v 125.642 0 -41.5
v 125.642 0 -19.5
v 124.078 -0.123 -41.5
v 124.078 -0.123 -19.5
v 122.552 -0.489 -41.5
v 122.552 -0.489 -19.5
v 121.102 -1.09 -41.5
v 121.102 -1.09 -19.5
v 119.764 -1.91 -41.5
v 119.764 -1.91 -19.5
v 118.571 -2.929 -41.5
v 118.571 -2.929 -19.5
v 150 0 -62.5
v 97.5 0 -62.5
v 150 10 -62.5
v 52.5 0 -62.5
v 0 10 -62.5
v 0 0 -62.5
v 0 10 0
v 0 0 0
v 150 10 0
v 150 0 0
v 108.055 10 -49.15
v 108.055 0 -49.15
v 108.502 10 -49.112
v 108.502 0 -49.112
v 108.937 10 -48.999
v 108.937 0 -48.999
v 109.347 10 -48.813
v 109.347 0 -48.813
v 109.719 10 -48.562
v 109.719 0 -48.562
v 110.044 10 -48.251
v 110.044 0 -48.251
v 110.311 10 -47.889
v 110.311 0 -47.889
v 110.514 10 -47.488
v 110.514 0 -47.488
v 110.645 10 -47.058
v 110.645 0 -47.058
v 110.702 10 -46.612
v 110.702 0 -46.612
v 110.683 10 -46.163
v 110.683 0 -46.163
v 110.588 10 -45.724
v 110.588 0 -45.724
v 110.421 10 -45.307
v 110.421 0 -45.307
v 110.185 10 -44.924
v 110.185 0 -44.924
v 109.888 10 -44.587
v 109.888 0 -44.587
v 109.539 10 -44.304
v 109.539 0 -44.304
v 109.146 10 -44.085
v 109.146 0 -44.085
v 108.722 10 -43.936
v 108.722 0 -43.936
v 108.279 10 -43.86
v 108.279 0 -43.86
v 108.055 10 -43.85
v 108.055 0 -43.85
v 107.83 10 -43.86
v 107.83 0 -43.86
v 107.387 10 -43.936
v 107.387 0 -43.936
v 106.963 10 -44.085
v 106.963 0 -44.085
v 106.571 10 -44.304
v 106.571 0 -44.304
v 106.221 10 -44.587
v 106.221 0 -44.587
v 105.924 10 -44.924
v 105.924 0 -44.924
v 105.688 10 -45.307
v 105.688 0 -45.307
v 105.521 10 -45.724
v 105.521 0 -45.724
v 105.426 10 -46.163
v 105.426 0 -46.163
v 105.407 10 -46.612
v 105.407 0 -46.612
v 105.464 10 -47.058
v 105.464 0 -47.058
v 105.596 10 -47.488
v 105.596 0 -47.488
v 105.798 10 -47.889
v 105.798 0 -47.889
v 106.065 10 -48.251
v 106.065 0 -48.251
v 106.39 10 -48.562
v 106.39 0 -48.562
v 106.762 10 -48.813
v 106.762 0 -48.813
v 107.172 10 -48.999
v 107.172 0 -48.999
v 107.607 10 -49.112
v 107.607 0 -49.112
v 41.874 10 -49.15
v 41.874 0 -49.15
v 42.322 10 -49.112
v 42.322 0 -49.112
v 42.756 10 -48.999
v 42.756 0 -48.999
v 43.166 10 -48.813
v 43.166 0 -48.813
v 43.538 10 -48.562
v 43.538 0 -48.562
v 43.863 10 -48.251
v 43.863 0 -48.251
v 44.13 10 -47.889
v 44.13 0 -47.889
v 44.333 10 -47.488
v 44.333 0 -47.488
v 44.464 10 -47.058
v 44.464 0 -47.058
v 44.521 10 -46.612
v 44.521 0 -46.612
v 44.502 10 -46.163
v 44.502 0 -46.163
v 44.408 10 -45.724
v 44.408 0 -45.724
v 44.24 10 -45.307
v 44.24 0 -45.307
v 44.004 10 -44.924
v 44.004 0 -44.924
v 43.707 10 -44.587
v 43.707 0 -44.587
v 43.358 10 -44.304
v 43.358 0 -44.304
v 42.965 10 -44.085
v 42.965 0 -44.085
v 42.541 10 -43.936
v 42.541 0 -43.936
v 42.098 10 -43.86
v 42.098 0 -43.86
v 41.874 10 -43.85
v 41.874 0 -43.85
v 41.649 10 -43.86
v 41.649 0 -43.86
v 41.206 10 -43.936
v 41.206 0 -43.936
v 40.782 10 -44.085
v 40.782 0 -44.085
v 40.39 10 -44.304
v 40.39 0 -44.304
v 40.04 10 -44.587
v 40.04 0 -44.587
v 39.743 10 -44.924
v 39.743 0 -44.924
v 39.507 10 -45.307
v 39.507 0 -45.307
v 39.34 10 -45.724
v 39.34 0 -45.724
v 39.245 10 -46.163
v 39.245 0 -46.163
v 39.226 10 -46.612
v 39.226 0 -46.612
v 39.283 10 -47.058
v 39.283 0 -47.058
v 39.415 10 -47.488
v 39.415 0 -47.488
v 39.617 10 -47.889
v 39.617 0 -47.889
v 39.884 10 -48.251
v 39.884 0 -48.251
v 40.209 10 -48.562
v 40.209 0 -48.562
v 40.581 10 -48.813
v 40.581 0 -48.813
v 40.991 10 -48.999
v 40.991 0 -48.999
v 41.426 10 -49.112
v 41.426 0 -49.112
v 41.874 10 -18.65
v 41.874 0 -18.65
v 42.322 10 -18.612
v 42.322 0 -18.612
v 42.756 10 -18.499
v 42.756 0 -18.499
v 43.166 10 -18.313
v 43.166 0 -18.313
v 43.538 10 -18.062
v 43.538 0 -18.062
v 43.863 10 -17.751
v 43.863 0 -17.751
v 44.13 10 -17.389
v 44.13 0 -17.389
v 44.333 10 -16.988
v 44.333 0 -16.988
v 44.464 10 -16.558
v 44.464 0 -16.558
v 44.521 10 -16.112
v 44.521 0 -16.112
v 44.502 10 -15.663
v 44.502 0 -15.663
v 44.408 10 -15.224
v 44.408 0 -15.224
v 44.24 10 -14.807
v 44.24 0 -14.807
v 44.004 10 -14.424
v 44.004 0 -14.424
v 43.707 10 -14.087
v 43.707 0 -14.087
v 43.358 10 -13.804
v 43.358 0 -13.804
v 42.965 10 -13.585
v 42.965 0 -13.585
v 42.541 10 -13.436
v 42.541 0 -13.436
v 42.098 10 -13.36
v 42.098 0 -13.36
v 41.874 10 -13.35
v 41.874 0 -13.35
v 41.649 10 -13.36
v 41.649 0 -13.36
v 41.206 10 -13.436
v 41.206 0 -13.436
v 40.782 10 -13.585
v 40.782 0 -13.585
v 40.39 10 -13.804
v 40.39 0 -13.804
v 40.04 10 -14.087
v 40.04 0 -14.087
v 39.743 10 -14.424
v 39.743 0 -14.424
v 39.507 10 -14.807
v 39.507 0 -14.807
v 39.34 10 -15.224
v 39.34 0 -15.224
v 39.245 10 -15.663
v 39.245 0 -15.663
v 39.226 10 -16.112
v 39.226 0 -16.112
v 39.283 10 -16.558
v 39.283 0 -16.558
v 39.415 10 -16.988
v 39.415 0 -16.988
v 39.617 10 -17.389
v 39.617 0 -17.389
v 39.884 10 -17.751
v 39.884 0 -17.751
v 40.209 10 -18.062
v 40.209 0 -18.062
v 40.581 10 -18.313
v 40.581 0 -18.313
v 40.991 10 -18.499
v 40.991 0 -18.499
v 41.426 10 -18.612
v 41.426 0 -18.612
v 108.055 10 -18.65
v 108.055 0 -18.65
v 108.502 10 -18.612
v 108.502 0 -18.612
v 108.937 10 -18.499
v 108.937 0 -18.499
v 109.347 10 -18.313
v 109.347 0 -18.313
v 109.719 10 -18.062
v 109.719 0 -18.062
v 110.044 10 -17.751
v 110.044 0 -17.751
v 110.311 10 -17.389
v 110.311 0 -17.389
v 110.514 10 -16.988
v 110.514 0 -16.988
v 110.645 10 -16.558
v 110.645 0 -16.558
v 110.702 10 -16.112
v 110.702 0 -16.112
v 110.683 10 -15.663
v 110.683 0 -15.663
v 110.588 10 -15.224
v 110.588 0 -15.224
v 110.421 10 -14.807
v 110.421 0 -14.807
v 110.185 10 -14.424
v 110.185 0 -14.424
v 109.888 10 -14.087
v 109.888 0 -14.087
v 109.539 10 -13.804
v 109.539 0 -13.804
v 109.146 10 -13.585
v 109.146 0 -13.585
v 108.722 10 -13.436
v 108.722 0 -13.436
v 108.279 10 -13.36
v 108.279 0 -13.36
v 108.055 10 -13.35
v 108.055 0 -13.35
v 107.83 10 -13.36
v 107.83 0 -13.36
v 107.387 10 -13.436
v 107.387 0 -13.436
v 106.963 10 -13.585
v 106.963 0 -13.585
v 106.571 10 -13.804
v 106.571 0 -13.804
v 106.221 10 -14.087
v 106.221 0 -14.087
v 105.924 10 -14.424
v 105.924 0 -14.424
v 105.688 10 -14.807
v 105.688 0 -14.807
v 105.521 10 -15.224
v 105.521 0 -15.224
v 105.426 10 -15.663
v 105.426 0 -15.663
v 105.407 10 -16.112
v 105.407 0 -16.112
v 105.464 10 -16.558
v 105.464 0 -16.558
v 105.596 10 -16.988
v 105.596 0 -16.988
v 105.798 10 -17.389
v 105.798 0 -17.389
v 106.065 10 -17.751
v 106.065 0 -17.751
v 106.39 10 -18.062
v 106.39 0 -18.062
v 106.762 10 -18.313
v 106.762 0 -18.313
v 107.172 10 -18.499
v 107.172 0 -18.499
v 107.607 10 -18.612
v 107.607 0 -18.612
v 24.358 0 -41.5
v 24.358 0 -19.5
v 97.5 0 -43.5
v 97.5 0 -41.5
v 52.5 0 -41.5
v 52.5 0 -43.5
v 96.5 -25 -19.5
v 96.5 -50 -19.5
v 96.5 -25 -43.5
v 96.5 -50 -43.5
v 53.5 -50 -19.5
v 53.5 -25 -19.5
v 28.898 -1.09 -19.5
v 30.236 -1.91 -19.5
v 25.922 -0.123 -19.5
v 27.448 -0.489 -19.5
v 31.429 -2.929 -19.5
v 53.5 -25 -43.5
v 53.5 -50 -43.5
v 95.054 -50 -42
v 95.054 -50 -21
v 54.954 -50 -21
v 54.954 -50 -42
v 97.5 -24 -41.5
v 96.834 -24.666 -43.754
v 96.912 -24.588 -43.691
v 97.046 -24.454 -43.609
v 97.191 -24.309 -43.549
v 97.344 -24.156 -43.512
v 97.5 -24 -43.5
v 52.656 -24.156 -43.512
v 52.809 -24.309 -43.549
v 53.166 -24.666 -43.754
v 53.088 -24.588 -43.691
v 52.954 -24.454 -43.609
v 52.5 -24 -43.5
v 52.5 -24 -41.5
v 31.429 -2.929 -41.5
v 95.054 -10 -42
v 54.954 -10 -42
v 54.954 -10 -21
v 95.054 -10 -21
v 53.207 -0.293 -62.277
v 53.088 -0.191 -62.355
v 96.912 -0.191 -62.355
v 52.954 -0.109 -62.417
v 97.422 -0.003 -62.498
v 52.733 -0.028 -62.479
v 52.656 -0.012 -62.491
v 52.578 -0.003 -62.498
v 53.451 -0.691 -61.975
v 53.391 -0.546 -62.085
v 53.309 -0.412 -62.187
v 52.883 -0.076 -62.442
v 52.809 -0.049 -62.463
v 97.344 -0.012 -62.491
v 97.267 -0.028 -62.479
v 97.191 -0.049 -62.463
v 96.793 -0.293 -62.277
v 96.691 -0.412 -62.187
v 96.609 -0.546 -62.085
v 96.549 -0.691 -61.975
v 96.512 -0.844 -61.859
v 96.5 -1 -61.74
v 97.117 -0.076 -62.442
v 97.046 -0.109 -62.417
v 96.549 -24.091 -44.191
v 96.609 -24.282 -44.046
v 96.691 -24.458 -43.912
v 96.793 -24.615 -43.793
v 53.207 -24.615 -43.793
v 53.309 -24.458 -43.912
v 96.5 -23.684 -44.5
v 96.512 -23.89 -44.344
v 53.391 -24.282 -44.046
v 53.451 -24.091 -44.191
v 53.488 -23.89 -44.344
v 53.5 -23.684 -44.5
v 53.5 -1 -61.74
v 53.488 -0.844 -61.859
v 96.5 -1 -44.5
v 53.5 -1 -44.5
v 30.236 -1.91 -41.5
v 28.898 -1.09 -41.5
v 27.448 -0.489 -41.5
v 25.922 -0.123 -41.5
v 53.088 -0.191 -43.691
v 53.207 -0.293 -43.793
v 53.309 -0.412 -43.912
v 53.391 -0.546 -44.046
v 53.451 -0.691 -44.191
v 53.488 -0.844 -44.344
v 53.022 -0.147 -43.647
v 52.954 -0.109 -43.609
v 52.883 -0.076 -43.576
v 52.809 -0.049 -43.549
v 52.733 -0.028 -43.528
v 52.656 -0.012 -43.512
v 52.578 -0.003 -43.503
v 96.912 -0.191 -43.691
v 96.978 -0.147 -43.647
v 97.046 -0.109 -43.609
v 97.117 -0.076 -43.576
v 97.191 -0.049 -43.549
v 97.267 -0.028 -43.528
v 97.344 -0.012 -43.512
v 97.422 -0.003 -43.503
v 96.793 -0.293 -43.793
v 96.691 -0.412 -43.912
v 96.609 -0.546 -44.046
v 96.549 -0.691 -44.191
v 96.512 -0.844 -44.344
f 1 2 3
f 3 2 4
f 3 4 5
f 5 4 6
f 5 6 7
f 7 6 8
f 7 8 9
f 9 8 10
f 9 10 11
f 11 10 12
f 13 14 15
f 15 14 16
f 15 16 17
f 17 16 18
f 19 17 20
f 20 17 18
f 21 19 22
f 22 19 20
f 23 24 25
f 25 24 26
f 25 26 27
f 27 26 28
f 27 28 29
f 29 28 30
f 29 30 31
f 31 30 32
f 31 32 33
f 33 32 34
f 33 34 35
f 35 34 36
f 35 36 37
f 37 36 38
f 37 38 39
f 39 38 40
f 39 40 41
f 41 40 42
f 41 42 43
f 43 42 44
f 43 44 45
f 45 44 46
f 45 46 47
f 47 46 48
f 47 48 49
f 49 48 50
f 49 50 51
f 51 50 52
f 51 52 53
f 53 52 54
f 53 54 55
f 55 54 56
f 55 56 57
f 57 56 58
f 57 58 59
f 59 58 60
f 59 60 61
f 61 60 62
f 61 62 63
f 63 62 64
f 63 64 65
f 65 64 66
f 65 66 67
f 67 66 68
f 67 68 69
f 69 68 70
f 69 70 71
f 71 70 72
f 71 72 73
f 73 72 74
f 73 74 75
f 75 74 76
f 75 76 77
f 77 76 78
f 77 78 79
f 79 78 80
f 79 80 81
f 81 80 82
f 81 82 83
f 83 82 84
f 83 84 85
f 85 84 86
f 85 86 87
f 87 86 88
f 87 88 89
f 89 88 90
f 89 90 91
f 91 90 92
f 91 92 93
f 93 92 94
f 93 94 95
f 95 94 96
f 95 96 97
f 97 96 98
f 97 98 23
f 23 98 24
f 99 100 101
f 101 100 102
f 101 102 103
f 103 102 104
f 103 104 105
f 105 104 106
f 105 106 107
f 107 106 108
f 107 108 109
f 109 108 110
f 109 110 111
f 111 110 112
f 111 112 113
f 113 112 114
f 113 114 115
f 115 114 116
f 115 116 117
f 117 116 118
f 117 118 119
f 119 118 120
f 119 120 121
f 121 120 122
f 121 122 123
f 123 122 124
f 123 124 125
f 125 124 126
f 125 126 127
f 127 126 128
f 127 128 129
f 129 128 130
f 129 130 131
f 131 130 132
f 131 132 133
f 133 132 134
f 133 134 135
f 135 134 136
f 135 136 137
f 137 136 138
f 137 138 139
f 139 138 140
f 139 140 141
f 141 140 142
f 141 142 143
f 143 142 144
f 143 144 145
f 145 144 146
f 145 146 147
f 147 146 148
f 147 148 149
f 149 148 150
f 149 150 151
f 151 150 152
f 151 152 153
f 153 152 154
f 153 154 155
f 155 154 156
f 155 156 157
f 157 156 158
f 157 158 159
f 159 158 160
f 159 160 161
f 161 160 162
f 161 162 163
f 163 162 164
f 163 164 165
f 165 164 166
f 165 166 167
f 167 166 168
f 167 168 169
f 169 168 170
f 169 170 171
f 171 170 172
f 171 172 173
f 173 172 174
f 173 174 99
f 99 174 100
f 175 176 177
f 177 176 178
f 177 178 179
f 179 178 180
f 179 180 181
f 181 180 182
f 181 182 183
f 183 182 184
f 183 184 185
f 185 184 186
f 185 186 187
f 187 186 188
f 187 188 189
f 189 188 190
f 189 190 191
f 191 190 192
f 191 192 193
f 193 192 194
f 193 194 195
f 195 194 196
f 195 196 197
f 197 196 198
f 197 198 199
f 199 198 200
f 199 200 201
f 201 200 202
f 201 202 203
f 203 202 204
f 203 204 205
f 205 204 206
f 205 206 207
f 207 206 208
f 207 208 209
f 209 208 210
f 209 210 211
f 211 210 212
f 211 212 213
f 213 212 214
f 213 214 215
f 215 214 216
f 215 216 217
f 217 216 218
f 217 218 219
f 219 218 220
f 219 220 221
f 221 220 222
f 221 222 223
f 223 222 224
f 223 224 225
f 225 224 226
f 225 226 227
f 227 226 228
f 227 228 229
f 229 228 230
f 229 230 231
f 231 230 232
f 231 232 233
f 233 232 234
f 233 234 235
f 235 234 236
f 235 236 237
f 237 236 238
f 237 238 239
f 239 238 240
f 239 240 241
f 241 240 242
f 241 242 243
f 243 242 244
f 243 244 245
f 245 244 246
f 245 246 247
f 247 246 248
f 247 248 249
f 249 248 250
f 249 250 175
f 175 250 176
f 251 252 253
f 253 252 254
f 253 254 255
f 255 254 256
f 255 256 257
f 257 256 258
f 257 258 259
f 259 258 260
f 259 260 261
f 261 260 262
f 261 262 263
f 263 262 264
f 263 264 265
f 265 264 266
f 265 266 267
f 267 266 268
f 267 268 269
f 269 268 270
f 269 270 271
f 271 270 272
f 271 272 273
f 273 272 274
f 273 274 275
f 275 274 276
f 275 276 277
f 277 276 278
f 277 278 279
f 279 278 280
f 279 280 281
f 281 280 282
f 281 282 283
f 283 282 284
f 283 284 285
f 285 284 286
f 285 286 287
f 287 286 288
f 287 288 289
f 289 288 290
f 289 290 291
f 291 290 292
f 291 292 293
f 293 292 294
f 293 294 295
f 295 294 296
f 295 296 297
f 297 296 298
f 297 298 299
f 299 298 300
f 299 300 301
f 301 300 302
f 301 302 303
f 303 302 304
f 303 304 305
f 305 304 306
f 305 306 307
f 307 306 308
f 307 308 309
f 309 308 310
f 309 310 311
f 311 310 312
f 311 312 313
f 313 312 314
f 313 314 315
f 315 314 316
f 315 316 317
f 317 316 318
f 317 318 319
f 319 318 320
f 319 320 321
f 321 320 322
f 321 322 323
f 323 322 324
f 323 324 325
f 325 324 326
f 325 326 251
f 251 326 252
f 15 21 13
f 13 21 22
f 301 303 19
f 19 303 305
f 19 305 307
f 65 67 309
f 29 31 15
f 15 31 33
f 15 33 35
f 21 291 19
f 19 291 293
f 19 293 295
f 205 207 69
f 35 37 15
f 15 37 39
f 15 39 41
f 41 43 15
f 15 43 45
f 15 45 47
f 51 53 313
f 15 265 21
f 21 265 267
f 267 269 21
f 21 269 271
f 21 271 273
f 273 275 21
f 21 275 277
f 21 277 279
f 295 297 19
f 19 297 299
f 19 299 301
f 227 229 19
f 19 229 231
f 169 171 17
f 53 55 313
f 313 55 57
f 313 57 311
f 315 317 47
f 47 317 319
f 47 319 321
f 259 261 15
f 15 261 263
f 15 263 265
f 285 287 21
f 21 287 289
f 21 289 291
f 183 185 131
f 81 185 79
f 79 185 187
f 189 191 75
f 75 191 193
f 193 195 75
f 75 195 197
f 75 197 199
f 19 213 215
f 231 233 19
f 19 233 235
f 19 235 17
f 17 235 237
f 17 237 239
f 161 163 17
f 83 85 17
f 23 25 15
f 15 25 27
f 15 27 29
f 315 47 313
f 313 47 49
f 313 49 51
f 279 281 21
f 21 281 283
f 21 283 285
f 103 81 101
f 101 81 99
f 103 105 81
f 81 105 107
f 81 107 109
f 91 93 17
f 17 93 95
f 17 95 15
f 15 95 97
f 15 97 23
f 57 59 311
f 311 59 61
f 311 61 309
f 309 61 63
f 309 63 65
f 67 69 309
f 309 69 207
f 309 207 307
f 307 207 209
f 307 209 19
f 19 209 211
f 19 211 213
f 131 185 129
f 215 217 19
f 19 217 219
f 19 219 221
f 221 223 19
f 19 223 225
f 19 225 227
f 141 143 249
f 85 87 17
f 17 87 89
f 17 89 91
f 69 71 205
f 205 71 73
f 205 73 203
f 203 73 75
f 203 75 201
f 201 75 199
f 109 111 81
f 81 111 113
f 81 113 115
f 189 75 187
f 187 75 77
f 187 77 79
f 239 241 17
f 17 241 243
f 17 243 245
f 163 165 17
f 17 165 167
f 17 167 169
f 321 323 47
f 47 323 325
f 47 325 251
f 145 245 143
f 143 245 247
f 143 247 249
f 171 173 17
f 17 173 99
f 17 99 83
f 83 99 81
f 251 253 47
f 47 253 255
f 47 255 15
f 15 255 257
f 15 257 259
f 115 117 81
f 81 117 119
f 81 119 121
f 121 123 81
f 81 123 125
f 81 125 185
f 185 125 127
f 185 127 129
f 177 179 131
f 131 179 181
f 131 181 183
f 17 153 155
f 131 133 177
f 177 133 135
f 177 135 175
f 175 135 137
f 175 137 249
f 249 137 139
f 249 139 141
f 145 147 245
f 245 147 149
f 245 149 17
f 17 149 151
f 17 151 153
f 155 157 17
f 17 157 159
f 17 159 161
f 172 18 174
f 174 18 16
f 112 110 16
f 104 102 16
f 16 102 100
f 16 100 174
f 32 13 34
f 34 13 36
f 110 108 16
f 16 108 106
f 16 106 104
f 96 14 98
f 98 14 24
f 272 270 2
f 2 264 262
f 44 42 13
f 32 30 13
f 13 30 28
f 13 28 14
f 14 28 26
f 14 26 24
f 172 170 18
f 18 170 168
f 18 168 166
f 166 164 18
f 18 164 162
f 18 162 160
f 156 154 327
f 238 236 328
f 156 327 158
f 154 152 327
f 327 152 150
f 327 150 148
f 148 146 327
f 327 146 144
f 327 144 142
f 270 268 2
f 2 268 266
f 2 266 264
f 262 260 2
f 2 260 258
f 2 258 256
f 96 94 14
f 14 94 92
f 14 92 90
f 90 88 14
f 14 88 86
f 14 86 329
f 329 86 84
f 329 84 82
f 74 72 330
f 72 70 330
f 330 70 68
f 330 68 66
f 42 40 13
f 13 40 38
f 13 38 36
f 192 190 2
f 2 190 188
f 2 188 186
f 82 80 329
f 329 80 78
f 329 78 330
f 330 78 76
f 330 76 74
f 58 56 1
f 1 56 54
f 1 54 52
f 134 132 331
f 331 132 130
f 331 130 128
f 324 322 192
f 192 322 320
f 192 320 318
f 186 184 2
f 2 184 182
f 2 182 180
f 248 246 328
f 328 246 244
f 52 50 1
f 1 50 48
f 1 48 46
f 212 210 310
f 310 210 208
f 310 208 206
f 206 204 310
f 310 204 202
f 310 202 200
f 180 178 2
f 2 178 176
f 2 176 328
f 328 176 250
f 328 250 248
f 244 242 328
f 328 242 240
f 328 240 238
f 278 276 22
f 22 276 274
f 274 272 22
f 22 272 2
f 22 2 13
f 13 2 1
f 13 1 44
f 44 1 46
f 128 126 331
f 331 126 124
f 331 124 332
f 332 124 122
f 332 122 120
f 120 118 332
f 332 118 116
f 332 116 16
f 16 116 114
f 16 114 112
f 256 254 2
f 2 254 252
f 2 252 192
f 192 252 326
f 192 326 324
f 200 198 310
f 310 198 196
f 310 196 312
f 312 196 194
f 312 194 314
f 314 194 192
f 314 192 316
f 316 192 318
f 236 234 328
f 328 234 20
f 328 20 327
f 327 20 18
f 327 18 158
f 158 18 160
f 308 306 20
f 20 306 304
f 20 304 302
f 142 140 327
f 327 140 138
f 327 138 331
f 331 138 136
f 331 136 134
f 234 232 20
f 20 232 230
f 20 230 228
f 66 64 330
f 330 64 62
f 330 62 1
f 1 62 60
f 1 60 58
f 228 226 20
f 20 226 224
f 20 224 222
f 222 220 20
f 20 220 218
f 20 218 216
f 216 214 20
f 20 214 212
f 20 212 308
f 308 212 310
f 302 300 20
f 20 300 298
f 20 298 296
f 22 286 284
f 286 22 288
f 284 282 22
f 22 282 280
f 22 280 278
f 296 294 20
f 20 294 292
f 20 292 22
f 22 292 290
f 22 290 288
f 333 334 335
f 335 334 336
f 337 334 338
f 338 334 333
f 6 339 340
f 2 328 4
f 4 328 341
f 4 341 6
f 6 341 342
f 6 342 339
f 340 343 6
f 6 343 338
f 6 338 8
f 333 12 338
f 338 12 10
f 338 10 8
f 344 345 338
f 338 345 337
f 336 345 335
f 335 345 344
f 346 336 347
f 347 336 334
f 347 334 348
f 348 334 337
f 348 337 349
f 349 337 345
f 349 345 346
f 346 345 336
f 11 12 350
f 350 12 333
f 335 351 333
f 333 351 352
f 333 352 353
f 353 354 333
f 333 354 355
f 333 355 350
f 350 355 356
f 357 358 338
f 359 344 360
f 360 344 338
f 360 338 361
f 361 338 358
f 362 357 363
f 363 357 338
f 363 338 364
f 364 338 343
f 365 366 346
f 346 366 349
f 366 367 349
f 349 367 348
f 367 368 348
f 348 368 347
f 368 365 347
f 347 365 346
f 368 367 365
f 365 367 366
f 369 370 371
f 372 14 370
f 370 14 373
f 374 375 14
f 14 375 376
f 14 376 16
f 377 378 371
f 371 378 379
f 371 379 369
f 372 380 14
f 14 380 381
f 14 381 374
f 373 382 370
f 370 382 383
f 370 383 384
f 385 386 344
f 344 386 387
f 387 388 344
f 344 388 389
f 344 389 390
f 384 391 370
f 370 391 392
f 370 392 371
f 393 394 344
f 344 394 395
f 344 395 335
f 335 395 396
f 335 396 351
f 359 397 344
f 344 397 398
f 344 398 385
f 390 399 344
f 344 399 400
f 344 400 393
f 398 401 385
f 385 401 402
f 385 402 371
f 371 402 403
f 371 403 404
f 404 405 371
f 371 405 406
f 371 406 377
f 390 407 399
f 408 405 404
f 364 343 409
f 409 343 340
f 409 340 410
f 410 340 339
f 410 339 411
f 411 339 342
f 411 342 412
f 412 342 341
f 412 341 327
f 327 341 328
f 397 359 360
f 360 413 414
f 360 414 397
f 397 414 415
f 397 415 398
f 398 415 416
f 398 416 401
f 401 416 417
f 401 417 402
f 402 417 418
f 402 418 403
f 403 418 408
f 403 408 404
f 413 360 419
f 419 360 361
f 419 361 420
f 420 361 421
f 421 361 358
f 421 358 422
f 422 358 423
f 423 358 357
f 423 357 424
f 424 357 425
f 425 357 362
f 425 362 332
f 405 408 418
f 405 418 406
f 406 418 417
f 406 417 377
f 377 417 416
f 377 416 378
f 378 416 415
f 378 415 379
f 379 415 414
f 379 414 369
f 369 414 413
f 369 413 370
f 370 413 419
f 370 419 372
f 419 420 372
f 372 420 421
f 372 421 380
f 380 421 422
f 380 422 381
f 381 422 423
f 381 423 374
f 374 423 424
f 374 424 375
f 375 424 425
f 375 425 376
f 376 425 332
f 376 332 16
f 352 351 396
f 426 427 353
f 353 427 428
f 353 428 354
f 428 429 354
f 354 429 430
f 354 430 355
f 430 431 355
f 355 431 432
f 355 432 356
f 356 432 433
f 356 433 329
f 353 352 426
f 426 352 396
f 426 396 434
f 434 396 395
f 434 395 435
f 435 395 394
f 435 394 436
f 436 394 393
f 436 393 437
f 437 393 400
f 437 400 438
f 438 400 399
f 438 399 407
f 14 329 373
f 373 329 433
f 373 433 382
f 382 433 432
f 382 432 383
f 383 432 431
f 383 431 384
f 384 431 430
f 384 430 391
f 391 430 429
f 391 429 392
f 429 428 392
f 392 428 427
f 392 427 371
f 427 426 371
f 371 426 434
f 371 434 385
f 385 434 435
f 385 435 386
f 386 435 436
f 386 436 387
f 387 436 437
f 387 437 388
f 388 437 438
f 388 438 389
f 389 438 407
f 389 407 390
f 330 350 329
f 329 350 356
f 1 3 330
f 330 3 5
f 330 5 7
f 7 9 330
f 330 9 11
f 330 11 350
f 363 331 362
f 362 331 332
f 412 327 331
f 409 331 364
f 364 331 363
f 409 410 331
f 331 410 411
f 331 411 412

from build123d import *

# Parameters (mm, degrees)
SKETCH1_R           = 2.65
BOSS_EXTRUDE1_DEPTH = 10
SKETCH2_W           = 43
SKETCH2_H           = 24
BOSS_EXTRUDE2_DEPTH = 50
CHAMFER12_SIZE      = 25
SKETCH11_W          = 40.1
SKETCH11_H          = 21
CUT_EXTRUDE3_DEPTH  = 40
BOSS_EXTRUDE3_DEPTH = 43
FILLET1_R           = 10
FILLET5_R           = 1
CUT_EXTRUDE4_DEPTH  = 2


with BuildPart() as part:
    # Sketch1 → Boss-Extrude1 (new body)
    with BuildSketch(Plane(origin=(0, 0, 0), x_dir=(1, 0, 0), z_dir=(0, 1, 0))):
        Polygon((0, 0), (150, 0), (150, 62.5), (99, 62.5), (51, 62.5), (0, 62.5), align=None)
        with Locations(Location((108.05464, 46.5, 0), (0, 0, 270))):
            Circle(SKETCH1_R, mode=Mode.SUBTRACT)
        with Locations(Location((41.87366, 46.5, 0), (0, 0, 270))):
            Circle(SKETCH1_R, mode=Mode.SUBTRACT)
        with Locations(Location((41.87366, 16, 0), (0, 0, 270))):
            Circle(SKETCH1_R, mode=Mode.SUBTRACT)
        with Locations(Location((108.05464, 16, 0), (0, 0, 270))):
            Circle(SKETCH1_R, mode=Mode.SUBTRACT)
    extrude(amount=BOSS_EXTRUDE1_DEPTH)

    # Sketch2 → Boss-Extrude2 (add)
    with BuildSketch(Plane.XZ):
        with Locations((75, -31.5)):
            Rectangle(SKETCH2_W, SKETCH2_H)
    extrude(amount=BOSS_EXTRUDE2_DEPTH)

    # Chamfer12
    chamfer12_edges = [part.edges().sort_by_distance(p)[0] for p in [
        (53.5, 0, -31.5),
        (96.5, 0, -31.5),
    ]]
    chamfer(chamfer12_edges, length=CHAMFER12_SIZE)

    # Sketch11 → Cut-Extrude3 (cut)
    with BuildSketch(Plane.XZ.offset(50)):
        with Locations((75.00366, -31.5)):
            Rectangle(SKETCH11_W, SKETCH11_H)
    extrude(amount=-CUT_EXTRUDE3_DEPTH, mode=Mode.SUBTRACT)

    # Sketch12 → Boss-Extrude3 (add)
    with BuildSketch(Plane.ZY.offset(-53.5)):
        Polygon((-43.5, -25), (-43.5, 0), (-62.5, 0), align=None)
    extrude(amount=-BOSS_EXTRUDE3_DEPTH)

    # Fillet1
    fillet1_edges = [part.edges().sort_by_distance(p)[0] for p in [
        (28.5, 0, -31.5),
        (121.5, 0, -31.5),
    ]]
    fillet(fillet1_edges, radius=FILLET1_R)

    # Fillet5
    # the kernel refuses this fillet: 1 mm, written as the material it adds along each edge
    with BuildSketch(Plane(origin=(96.5, 0, -41), x_dir=(1, 0, 0), z_dir=(0, 0, -1))) as fillet5_piece_1_section:
        with BuildLine():
            CenterArc((FILLET5_R, FILLET5_R), FILLET5_R, 180, 90)
            Line((0, FILLET5_R), (0, 0))
            Line((0, 0), (FILLET5_R, 0))
        make_face()
    fillet5_piece_1 = extrude(amount=21.5, mode=Mode.PRIVATE)
    fillet5_piece_1 = split(fillet5_piece_1, bisect_by=Plane(origin=(96.726395114, -9.898830574, -54.976888763), z_dir=(0, 0.6050832675335575, 0.7961621941231029)), keep=Keep.TOP, mode=Mode.PRIVATE)
    add(fillet5_piece_1)
    with BuildSketch(Plane(origin=(96.5, -27.5, -43.5), x_dir=(1, 0, 0), z_dir=(0, 1, 0))) as fillet5_piece_2_section:
        with BuildLine():
            CenterArc((FILLET5_R, FILLET5_R), FILLET5_R, 180, 90)
            Line((0, FILLET5_R), (0, 0))
            Line((0, 0), (FILLET5_R, 0))
        make_face()
    fillet5_piece_2 = extrude(amount=30, mode=Mode.PRIVATE)
    fillet5_piece_2 = split(fillet5_piece_2, bisect_by=Plane(origin=(102.972342409, -18.527657591, -43.72500317), z_dir=(-0.7071067811865476, 0.7071067811865476, 0)), keep=Keep.TOP, mode=Mode.PRIVATE)
    fillet5_piece_2 = split(fillet5_piece_2, bisect_by=Plane(origin=(96.726036712, -16.829582585, -49.709517236), z_dir=(0, 0.6050832675335575, 0.7961621941231029)), keep=Keep.TOP, mode=Mode.PRIVATE)
    add(fillet5_piece_2)
    with BuildSketch(Plane(origin=(53.5, 0, -41), x_dir=(-1, 0, 0), z_dir=(0, 0, -1))) as fillet5_piece_3_section:
        with BuildLine():
            CenterArc((FILLET5_R, -FILLET5_R), FILLET5_R, 90, 90)
            Line((0, -FILLET5_R), (0, 0))
            Line((0, 0), (FILLET5_R, 0))
        make_face()
    fillet5_piece_3 = extrude(amount=21.5, mode=Mode.PRIVATE)
    fillet5_piece_3 = split(fillet5_piece_3, bisect_by=Plane(origin=(53.273604886, -9.898830574, -54.976888763), z_dir=(0, 0.6050832675335575, 0.7961621941231029)), keep=Keep.TOP, mode=Mode.PRIVATE)
    add(fillet5_piece_3)
    with BuildSketch(Plane(origin=(53.5, -27.5, -43.5), x_dir=(0, 0, -1), z_dir=(0, 1, 0))) as fillet5_piece_4_section:
        with BuildLine():
            CenterArc((FILLET5_R, FILLET5_R), FILLET5_R, 180, 90)
            Line((0, FILLET5_R), (0, 0))
            Line((0, 0), (FILLET5_R, 0))
        make_face()
    fillet5_piece_4 = extrude(amount=30, mode=Mode.PRIVATE)
    fillet5_piece_4 = split(fillet5_piece_4, bisect_by=Plane(origin=(47.02765759, -18.52765759, -43.72500317), z_dir=(0.7071067811865476, 0.7071067811865476, 0)), keep=Keep.TOP, mode=Mode.PRIVATE)
    fillet5_piece_4 = split(fillet5_piece_4, bisect_by=Plane(origin=(53.273963288, -16.829582583, -49.709517237), z_dir=(0, 0.6050832675335575, 0.7961621941231029)), keep=Keep.TOP, mode=Mode.PRIVATE)
    add(fillet5_piece_4)

    # Sketch14 → Cut-Extrude4 (cut)
    with BuildSketch(Plane(origin=(0, 0, -43.5), x_dir=(-1, 0, 0), z_dir=(0, 0, -1))):
        with BuildLine():
            Line((-24.357864376, 0), (-52.5, 0))
            Line((-52.5, 0), (-52.5, -24))
            Line((-52.5, -24), (-31.428932188, -2.928932188))
            ThreePointArc((-31.428932188, -2.928932188), (-28.1846987, -0.761204675), (-24.357864376, 0))
        make_face()
        with BuildLine():
            Line((-97.5, -24), (-97.5, 0))
            Line((-97.5, 0), (-125.642135624, 0))
            ThreePointArc((-125.642135624, 0), (-121.8153013, -0.761204675), (-118.571067812, -2.928932188))
            Line((-118.571067812, -2.928932188), (-97.5, -24))
        make_face()
    extrude(amount=-CUT_EXTRUDE4_DEPTH, mode=Mode.SUBTRACT)


solid = part.part
